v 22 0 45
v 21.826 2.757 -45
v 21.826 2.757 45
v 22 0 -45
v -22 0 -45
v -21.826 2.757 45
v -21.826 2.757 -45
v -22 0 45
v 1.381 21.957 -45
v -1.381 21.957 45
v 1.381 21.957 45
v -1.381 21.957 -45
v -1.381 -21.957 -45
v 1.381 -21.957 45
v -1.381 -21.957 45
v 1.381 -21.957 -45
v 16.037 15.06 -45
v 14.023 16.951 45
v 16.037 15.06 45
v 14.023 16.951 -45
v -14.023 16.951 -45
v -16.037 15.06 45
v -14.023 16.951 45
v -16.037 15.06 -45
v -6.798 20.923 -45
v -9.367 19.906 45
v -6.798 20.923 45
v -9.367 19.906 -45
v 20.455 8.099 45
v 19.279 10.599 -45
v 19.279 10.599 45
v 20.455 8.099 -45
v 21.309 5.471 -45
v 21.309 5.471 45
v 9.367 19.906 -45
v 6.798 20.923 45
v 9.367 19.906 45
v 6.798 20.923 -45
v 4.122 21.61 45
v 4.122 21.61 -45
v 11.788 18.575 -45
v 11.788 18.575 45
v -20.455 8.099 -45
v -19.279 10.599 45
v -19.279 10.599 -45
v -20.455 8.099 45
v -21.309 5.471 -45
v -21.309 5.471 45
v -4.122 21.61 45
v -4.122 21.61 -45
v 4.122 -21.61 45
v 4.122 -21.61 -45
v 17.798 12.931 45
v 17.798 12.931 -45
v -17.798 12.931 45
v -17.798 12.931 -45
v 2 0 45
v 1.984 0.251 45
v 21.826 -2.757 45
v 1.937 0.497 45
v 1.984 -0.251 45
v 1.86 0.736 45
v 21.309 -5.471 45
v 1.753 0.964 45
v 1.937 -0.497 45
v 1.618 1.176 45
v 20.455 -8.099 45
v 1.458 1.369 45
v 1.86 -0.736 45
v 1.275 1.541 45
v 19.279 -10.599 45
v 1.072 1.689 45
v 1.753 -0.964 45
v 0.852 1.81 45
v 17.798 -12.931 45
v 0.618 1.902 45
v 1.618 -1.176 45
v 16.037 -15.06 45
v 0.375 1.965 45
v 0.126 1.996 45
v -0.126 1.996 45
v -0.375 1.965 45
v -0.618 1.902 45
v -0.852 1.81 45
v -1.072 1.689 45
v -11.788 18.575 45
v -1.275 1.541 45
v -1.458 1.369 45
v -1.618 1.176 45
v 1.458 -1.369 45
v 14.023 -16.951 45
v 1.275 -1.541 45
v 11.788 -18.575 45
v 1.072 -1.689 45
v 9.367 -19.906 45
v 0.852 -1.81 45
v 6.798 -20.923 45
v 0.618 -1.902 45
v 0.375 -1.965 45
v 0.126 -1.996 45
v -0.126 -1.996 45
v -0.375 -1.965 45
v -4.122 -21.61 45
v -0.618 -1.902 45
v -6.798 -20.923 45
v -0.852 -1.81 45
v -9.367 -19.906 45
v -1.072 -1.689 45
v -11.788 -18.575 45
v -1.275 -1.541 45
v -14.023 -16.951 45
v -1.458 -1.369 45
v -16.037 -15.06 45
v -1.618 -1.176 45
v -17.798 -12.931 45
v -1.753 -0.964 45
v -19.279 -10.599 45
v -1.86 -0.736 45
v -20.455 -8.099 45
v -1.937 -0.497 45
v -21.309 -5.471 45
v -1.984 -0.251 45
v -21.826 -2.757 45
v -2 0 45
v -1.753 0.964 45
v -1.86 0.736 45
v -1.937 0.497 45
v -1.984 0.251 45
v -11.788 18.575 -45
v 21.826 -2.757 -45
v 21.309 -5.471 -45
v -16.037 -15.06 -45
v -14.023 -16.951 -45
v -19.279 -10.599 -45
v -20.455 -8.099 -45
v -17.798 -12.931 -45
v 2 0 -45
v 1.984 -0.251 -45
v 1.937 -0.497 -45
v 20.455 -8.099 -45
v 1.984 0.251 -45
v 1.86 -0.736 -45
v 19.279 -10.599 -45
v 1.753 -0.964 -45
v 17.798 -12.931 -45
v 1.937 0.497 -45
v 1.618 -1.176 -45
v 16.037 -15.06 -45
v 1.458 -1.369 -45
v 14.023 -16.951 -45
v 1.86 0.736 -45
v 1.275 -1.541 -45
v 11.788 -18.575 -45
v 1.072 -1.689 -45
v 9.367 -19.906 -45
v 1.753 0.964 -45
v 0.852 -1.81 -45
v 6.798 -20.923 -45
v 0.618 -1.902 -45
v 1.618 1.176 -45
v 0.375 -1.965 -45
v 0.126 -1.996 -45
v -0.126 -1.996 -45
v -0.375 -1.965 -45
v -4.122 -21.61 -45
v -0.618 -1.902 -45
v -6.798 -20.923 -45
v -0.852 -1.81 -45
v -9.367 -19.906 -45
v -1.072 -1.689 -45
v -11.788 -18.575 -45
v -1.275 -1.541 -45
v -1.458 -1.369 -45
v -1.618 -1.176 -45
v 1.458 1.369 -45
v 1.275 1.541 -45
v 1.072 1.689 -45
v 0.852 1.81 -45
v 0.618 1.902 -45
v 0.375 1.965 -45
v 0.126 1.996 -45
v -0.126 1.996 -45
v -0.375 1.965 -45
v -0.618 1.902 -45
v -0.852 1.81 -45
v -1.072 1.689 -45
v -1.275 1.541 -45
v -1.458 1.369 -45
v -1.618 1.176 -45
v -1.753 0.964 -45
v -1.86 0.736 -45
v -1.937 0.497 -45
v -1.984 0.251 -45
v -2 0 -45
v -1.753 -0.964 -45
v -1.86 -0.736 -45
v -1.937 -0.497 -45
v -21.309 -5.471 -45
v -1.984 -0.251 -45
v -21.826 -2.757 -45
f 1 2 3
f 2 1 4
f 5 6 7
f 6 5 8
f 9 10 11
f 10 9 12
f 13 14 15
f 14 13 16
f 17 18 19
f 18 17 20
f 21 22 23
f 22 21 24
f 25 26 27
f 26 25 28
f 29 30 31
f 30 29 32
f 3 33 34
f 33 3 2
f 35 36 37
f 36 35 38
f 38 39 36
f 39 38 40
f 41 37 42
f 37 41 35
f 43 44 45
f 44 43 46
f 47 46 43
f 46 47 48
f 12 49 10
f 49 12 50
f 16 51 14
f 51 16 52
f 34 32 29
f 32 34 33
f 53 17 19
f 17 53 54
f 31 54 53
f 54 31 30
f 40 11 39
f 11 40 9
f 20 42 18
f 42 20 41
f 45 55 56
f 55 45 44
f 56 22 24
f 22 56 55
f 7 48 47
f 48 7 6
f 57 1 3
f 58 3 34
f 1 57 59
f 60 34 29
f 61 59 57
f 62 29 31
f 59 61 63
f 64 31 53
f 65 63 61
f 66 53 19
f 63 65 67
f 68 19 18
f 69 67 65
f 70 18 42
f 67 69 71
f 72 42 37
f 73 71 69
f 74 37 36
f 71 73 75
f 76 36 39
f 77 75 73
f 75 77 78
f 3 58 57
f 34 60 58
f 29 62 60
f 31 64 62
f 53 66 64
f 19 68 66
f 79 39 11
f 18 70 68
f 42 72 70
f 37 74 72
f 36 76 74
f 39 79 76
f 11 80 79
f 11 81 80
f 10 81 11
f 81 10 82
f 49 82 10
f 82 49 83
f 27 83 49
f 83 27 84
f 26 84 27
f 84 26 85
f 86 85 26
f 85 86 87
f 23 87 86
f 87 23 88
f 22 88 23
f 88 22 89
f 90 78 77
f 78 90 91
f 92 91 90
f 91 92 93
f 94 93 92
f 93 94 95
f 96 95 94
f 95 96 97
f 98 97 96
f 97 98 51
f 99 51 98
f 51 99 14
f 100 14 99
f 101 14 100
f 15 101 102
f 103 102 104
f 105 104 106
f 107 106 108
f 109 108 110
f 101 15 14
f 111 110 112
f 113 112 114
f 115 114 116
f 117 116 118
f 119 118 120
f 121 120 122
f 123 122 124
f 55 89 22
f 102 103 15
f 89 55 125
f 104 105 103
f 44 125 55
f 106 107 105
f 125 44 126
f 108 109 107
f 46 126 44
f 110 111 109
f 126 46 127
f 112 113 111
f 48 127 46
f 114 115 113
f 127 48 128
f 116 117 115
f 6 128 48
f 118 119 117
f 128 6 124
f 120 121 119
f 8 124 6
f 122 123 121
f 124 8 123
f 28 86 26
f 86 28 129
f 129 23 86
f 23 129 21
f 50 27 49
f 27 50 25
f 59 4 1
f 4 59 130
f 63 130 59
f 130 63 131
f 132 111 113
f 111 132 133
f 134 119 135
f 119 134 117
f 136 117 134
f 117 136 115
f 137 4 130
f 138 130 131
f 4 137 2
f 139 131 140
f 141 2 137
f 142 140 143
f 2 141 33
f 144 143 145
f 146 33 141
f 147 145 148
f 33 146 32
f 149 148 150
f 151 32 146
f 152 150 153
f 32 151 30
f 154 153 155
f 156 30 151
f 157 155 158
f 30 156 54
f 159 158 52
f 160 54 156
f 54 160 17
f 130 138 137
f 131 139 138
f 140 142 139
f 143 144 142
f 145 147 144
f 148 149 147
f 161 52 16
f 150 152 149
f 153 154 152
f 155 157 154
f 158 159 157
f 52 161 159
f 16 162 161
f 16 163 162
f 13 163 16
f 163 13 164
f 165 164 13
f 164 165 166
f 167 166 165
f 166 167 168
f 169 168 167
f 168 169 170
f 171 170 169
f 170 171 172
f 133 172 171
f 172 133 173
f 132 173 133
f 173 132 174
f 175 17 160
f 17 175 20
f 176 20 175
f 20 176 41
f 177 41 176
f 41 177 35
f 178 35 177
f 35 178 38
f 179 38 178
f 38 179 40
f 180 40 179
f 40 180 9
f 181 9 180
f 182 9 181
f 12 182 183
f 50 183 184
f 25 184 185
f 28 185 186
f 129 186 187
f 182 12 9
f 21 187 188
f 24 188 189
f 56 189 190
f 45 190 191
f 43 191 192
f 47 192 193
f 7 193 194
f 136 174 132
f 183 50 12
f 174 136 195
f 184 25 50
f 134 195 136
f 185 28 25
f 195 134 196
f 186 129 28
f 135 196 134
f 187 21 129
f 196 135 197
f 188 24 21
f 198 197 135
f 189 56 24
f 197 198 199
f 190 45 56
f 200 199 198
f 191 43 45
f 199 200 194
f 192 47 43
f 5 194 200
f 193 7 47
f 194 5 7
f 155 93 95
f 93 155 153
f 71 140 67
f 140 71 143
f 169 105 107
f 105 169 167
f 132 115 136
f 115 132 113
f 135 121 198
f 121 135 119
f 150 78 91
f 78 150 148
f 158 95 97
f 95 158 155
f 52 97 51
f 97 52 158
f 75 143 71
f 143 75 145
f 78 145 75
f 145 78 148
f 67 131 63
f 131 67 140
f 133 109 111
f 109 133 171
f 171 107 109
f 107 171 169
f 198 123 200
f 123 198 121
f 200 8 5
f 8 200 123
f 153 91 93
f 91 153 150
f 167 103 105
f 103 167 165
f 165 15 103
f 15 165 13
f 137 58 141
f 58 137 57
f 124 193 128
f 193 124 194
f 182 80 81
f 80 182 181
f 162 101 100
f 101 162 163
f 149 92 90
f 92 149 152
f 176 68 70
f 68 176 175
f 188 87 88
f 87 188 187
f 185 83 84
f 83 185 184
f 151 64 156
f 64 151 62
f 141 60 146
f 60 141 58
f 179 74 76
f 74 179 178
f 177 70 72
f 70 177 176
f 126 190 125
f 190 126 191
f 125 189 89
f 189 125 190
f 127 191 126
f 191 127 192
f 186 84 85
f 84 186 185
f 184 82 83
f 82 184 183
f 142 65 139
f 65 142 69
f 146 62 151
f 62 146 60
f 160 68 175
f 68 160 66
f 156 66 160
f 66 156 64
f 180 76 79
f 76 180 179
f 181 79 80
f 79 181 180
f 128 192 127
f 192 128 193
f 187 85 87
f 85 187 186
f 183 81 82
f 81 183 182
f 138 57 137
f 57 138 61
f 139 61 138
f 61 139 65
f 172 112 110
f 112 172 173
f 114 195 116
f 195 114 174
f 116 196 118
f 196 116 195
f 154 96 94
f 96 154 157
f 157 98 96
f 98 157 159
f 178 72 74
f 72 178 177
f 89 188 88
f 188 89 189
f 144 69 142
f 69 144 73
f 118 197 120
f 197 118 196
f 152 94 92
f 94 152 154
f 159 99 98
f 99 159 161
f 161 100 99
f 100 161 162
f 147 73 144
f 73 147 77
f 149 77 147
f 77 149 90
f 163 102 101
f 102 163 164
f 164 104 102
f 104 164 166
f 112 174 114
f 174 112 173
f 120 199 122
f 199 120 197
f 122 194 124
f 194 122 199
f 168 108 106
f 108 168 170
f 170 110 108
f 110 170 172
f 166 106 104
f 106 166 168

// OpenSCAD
$fn = 50;


difference() {
	union() {
		translate(v = [0, 0, -45.0000000000]) {
			cylinder(h = 90, r = 22.0000000000);
		}
	}
	union() {
		translate(v = [0, 0, -100.0000000000]) {
			cylinder(h = 200, r = 2.0000000000);
		}
	}
}
